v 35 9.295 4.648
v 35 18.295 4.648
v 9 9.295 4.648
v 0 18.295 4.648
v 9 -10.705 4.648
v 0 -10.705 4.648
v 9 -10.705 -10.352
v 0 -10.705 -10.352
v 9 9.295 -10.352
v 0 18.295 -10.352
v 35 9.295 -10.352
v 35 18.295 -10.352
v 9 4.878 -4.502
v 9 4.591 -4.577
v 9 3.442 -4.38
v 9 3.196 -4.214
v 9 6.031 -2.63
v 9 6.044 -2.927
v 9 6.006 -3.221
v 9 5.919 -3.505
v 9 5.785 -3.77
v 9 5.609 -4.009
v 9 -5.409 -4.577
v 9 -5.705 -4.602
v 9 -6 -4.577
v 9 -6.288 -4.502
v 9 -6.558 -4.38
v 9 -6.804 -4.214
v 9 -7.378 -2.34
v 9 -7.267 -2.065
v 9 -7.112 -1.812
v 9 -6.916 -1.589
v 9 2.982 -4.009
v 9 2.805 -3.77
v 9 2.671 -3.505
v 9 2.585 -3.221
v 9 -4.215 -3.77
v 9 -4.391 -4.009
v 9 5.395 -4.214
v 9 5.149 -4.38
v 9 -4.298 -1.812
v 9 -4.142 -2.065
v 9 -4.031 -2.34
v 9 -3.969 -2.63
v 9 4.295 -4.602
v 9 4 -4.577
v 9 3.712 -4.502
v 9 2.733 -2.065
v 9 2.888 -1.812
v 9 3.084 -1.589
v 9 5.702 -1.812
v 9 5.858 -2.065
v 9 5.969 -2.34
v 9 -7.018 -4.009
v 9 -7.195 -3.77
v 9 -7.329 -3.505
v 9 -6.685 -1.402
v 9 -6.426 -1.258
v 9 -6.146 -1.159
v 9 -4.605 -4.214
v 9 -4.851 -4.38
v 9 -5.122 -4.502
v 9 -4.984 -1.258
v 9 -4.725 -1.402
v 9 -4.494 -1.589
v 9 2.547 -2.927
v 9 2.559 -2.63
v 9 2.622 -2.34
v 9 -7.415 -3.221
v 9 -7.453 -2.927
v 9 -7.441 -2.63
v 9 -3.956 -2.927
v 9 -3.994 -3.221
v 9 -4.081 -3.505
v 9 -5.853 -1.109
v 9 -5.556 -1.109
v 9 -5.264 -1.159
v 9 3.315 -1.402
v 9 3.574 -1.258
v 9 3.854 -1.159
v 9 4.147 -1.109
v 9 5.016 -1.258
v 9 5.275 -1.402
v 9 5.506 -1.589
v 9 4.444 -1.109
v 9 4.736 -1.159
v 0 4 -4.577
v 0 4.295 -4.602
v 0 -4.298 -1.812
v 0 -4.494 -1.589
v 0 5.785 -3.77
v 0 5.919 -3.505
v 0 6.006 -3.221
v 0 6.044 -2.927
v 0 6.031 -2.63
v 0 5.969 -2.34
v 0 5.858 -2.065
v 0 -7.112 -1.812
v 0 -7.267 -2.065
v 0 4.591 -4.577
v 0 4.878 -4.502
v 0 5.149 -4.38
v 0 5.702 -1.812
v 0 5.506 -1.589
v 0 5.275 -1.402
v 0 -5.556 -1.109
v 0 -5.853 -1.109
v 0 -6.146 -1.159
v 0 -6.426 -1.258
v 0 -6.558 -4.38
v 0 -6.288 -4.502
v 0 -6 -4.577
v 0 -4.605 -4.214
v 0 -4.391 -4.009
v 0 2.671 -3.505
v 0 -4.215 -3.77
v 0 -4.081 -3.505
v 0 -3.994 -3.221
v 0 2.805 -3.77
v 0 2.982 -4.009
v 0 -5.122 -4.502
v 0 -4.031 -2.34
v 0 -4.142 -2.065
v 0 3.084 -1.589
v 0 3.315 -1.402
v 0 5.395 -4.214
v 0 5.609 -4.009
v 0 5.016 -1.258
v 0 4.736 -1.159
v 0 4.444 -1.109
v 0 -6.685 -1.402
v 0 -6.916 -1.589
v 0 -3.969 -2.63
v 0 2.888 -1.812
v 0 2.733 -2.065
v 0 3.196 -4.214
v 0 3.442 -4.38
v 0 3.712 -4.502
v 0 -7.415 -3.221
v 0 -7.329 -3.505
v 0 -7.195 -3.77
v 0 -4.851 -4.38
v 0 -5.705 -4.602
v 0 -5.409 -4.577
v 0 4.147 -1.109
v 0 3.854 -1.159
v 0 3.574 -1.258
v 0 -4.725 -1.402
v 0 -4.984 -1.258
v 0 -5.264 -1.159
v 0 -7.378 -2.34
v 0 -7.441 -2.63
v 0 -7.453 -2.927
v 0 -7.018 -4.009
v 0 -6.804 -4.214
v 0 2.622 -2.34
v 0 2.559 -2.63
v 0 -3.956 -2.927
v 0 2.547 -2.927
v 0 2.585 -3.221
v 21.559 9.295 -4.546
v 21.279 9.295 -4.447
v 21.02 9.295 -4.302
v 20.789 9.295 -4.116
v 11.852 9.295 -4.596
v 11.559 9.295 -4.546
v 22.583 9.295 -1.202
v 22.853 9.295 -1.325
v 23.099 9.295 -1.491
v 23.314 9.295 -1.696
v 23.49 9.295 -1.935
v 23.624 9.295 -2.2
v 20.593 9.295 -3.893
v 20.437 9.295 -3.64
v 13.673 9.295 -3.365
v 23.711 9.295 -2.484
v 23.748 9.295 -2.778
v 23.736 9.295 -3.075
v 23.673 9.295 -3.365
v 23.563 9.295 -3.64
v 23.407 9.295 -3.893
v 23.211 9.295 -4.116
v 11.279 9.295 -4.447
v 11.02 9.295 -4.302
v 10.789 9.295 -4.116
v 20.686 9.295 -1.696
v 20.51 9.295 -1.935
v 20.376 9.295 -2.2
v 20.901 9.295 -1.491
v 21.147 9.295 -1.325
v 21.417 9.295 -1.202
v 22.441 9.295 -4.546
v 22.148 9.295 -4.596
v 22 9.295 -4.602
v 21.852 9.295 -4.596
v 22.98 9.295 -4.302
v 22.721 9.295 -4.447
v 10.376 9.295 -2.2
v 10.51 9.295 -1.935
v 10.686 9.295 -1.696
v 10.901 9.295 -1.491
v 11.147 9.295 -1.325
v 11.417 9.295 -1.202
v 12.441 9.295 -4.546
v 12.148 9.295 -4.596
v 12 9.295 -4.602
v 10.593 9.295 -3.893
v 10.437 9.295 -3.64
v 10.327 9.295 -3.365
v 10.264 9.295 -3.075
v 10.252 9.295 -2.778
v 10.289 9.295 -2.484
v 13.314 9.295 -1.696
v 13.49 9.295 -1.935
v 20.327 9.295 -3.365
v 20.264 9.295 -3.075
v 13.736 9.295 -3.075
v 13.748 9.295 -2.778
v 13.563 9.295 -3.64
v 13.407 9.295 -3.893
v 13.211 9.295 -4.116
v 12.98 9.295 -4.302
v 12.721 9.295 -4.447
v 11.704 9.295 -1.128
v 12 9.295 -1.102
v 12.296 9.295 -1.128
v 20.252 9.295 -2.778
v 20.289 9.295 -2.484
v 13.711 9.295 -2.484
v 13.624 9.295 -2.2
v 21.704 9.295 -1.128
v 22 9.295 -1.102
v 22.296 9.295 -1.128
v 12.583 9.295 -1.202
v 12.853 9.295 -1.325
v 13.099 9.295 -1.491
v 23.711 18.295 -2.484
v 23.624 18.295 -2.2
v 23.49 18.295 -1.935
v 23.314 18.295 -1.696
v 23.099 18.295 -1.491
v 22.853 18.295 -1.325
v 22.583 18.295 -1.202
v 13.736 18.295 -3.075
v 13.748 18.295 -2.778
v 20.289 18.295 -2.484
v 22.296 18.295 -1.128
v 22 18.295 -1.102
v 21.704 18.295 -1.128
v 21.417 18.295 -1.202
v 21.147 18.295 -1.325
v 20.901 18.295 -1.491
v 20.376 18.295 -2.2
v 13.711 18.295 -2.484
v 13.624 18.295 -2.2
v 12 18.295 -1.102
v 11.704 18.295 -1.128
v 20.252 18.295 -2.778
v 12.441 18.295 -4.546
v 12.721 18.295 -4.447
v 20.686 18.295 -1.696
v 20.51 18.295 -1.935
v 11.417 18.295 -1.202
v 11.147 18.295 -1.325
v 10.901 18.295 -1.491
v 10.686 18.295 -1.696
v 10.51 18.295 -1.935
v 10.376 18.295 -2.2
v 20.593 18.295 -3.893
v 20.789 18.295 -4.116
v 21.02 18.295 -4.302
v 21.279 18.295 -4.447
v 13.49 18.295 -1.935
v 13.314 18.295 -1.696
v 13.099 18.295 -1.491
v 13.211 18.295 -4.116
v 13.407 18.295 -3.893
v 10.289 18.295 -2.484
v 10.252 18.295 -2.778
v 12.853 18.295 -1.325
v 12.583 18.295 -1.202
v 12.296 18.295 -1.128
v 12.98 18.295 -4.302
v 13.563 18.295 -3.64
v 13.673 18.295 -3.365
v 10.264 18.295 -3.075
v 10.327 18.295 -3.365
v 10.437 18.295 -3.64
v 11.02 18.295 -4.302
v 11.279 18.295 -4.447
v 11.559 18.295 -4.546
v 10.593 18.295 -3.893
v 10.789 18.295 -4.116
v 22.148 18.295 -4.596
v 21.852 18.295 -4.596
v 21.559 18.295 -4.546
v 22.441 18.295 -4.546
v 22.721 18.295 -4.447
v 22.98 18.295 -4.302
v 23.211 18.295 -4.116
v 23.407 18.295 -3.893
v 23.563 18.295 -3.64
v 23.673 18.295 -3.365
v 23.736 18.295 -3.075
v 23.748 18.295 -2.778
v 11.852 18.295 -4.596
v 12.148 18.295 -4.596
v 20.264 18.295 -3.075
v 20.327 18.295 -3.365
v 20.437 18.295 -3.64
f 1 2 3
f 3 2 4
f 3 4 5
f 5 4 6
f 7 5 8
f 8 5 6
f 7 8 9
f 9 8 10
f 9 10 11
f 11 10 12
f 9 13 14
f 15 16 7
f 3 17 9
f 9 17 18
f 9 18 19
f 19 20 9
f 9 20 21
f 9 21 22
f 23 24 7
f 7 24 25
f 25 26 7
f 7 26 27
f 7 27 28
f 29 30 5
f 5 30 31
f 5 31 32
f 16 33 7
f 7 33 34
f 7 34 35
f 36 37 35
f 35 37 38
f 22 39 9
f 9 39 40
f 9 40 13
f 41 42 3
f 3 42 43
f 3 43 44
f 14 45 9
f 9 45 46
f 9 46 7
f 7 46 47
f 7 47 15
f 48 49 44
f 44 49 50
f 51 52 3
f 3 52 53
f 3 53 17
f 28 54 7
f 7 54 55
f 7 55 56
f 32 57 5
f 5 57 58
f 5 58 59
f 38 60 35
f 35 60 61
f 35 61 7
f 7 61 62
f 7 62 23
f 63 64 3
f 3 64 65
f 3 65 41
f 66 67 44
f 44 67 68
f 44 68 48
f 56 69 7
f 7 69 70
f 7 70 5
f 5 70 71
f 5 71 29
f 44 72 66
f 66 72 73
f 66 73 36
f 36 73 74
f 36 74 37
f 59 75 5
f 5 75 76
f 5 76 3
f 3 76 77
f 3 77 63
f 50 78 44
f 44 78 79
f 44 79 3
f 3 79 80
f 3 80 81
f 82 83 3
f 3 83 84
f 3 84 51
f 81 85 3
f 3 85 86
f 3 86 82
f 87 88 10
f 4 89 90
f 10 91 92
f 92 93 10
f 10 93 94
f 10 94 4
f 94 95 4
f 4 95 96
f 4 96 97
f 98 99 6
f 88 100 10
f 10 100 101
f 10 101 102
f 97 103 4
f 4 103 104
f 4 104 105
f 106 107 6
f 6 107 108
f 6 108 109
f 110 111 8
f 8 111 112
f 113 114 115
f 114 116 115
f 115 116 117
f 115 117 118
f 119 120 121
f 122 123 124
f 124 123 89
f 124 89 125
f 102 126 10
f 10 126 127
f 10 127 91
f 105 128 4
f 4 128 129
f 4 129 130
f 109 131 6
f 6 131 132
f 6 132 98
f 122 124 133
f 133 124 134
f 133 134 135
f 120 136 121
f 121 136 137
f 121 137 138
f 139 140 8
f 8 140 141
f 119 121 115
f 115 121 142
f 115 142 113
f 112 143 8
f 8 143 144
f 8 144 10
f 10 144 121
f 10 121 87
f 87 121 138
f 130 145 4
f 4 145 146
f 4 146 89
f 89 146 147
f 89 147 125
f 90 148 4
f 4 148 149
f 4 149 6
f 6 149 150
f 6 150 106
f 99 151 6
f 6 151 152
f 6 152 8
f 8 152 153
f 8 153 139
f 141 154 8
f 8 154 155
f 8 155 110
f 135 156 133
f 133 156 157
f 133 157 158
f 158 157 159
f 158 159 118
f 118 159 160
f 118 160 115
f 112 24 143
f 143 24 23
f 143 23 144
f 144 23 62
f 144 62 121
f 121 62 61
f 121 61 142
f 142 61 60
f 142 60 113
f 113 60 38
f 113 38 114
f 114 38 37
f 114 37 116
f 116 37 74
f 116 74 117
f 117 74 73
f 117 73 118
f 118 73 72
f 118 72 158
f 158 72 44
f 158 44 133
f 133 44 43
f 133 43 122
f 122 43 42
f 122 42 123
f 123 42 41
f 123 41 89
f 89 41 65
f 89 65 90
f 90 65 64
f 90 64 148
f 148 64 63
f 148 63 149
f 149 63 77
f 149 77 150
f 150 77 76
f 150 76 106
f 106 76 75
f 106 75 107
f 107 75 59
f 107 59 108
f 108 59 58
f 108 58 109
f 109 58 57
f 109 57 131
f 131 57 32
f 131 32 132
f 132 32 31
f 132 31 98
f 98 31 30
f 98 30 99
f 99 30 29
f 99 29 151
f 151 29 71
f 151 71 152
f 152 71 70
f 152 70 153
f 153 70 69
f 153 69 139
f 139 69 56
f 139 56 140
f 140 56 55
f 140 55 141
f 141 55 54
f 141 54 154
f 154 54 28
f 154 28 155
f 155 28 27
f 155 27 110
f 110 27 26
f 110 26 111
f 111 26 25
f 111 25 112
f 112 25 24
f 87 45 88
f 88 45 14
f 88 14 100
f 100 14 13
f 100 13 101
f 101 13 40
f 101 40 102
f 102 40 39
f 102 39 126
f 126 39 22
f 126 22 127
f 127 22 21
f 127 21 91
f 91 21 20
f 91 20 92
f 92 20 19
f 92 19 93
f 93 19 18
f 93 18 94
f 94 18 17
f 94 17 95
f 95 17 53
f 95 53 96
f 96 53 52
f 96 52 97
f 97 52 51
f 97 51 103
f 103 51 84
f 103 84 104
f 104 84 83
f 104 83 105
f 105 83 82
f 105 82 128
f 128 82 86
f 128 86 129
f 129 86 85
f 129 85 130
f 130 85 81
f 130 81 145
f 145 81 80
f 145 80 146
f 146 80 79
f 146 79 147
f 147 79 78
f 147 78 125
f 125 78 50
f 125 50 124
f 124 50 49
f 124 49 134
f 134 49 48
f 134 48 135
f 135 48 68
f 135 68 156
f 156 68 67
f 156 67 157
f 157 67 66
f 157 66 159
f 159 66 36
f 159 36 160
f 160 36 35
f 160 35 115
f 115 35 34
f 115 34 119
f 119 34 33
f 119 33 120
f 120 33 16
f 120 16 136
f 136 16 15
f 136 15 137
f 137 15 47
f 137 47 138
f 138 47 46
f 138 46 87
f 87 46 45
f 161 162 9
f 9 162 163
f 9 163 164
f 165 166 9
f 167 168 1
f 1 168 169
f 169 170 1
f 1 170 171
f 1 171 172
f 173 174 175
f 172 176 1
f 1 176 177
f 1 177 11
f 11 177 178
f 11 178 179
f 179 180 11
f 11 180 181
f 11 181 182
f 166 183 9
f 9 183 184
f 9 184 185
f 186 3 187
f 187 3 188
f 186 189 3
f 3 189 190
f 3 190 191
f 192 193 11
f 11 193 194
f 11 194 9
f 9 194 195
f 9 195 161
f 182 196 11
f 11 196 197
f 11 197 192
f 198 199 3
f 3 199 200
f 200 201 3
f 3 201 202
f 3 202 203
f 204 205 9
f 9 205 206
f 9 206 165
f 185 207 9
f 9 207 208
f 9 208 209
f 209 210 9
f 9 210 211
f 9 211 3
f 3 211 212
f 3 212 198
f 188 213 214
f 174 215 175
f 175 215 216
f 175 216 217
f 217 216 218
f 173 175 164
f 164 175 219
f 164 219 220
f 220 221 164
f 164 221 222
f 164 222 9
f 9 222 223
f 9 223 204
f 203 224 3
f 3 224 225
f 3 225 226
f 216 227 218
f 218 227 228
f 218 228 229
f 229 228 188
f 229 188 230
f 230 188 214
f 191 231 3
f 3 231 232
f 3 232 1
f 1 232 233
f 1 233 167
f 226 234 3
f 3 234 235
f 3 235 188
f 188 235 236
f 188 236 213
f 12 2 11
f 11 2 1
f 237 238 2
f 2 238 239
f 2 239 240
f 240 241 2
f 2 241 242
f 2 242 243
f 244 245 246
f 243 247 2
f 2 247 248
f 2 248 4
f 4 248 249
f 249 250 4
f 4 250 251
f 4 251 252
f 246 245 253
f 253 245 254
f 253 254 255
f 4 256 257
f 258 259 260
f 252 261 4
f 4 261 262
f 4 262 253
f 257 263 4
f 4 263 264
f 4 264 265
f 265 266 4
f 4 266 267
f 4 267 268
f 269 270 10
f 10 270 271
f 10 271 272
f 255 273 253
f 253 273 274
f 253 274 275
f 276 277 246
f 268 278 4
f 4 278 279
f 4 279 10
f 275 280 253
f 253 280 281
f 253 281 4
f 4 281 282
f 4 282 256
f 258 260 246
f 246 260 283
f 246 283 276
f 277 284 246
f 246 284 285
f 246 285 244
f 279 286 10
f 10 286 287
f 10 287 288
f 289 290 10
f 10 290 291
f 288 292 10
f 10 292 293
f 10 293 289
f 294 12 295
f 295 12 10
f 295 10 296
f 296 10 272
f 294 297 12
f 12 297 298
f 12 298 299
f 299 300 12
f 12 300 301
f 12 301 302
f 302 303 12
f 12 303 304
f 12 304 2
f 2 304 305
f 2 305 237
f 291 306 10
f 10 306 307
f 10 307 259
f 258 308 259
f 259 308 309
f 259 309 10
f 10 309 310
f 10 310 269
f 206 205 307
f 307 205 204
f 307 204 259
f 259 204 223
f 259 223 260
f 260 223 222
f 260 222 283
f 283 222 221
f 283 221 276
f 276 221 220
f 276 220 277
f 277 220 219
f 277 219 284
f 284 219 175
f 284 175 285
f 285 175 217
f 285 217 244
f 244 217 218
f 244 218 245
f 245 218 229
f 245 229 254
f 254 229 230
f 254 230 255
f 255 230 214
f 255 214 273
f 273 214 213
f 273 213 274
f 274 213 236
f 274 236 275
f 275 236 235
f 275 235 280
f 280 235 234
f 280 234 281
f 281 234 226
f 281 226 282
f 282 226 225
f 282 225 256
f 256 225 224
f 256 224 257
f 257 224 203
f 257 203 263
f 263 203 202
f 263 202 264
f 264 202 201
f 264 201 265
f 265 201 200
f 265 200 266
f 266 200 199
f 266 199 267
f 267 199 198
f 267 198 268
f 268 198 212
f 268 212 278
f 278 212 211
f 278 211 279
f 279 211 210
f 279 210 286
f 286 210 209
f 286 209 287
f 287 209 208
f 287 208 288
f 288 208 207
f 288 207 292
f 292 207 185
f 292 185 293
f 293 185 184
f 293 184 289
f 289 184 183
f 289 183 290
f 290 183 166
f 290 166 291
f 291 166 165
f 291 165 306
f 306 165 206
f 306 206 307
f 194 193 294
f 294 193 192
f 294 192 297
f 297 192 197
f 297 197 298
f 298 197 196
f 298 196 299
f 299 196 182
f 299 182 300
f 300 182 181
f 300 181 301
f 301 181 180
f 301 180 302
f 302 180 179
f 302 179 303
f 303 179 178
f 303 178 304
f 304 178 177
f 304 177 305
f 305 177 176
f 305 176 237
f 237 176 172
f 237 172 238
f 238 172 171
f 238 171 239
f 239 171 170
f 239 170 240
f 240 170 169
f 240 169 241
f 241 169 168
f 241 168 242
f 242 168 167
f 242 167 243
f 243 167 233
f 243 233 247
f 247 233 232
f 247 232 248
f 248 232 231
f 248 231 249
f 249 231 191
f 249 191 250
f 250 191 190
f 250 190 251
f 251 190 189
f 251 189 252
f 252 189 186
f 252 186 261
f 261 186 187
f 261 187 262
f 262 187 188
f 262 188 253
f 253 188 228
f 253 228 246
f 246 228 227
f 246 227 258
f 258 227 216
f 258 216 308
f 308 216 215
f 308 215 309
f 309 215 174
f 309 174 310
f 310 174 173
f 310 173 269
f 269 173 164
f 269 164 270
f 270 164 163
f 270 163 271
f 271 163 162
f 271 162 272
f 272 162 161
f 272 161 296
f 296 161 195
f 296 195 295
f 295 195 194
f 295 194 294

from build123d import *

# Parameters (mm, degrees)
SKETCH2_W           = 15
SKETCH2_H           = 20
BOSS_EXTRUDE1_DEPTH = 9
SKETCH3_R           = 1.75
CUT_EXTRUDE1_DEPTH  = 18.400072003
SKETCH4_W           = 35
SKETCH4_H           = 15
BOSS_EXTRUDE2_DEPTH = 9
SKETCH5_R           = 1.75
CUT_EXTRUDE2_DEPTH  = 47.61728645


with BuildPart() as part:
    # Sketch2 → Boss-Extrude1 (new body)
    with BuildSketch(Plane(origin=(0, 0, 0), x_dir=(0, 0, -1), z_dir=(1, 0, 0))):
        with Locations((2.852361856, -0.704723711)):
            Rectangle(SKETCH2_W, SKETCH2_H)
    extrude(amount=BOSS_EXTRUDE1_DEPTH)

    # Sketch3 → Cut-Extrude1 (cut, through all)
    with BuildSketch(Plane(origin=(9, 0, 0), x_dir=(0, 0, -1), z_dir=(1, 0, 0))):
        with Locations((2.852361856, -5.704723711)):
            Circle(SKETCH3_R)
        with Locations((2.852361856, 4.295276289)):
            Circle(SKETCH3_R)
    extrude(amount=-CUT_EXTRUDE1_DEPTH, mode=Mode.SUBTRACT)

    # Sketch4 → Boss-Extrude2 (add)
    with BuildSketch(Plane(origin=(0, 9.295276289, 0), x_dir=(1, 0, 0), z_dir=(0, 1, 0))):
        with Locations((17.5, 2.852361856)):
            Rectangle(SKETCH4_W, SKETCH4_H)
    extrude(amount=BOSS_EXTRUDE2_DEPTH)

    # Sketch5 → Cut-Extrude2 (cut, through all)
    with BuildSketch(Plane(origin=(0, 18.295276289, 0), x_dir=(1, 0, 0), z_dir=(0, 1, 0))):
        with Locations(Location((12, 2.852361856, 0), (0, 0, 270))):
            Circle(SKETCH5_R)
        with Locations(Location((22, 2.852361856, 0), (0, 0, 270))):
            Circle(SKETCH5_R)
    extrude(amount=-CUT_EXTRUDE2_DEPTH, mode=Mode.SUBTRACT)


solid = part.part
